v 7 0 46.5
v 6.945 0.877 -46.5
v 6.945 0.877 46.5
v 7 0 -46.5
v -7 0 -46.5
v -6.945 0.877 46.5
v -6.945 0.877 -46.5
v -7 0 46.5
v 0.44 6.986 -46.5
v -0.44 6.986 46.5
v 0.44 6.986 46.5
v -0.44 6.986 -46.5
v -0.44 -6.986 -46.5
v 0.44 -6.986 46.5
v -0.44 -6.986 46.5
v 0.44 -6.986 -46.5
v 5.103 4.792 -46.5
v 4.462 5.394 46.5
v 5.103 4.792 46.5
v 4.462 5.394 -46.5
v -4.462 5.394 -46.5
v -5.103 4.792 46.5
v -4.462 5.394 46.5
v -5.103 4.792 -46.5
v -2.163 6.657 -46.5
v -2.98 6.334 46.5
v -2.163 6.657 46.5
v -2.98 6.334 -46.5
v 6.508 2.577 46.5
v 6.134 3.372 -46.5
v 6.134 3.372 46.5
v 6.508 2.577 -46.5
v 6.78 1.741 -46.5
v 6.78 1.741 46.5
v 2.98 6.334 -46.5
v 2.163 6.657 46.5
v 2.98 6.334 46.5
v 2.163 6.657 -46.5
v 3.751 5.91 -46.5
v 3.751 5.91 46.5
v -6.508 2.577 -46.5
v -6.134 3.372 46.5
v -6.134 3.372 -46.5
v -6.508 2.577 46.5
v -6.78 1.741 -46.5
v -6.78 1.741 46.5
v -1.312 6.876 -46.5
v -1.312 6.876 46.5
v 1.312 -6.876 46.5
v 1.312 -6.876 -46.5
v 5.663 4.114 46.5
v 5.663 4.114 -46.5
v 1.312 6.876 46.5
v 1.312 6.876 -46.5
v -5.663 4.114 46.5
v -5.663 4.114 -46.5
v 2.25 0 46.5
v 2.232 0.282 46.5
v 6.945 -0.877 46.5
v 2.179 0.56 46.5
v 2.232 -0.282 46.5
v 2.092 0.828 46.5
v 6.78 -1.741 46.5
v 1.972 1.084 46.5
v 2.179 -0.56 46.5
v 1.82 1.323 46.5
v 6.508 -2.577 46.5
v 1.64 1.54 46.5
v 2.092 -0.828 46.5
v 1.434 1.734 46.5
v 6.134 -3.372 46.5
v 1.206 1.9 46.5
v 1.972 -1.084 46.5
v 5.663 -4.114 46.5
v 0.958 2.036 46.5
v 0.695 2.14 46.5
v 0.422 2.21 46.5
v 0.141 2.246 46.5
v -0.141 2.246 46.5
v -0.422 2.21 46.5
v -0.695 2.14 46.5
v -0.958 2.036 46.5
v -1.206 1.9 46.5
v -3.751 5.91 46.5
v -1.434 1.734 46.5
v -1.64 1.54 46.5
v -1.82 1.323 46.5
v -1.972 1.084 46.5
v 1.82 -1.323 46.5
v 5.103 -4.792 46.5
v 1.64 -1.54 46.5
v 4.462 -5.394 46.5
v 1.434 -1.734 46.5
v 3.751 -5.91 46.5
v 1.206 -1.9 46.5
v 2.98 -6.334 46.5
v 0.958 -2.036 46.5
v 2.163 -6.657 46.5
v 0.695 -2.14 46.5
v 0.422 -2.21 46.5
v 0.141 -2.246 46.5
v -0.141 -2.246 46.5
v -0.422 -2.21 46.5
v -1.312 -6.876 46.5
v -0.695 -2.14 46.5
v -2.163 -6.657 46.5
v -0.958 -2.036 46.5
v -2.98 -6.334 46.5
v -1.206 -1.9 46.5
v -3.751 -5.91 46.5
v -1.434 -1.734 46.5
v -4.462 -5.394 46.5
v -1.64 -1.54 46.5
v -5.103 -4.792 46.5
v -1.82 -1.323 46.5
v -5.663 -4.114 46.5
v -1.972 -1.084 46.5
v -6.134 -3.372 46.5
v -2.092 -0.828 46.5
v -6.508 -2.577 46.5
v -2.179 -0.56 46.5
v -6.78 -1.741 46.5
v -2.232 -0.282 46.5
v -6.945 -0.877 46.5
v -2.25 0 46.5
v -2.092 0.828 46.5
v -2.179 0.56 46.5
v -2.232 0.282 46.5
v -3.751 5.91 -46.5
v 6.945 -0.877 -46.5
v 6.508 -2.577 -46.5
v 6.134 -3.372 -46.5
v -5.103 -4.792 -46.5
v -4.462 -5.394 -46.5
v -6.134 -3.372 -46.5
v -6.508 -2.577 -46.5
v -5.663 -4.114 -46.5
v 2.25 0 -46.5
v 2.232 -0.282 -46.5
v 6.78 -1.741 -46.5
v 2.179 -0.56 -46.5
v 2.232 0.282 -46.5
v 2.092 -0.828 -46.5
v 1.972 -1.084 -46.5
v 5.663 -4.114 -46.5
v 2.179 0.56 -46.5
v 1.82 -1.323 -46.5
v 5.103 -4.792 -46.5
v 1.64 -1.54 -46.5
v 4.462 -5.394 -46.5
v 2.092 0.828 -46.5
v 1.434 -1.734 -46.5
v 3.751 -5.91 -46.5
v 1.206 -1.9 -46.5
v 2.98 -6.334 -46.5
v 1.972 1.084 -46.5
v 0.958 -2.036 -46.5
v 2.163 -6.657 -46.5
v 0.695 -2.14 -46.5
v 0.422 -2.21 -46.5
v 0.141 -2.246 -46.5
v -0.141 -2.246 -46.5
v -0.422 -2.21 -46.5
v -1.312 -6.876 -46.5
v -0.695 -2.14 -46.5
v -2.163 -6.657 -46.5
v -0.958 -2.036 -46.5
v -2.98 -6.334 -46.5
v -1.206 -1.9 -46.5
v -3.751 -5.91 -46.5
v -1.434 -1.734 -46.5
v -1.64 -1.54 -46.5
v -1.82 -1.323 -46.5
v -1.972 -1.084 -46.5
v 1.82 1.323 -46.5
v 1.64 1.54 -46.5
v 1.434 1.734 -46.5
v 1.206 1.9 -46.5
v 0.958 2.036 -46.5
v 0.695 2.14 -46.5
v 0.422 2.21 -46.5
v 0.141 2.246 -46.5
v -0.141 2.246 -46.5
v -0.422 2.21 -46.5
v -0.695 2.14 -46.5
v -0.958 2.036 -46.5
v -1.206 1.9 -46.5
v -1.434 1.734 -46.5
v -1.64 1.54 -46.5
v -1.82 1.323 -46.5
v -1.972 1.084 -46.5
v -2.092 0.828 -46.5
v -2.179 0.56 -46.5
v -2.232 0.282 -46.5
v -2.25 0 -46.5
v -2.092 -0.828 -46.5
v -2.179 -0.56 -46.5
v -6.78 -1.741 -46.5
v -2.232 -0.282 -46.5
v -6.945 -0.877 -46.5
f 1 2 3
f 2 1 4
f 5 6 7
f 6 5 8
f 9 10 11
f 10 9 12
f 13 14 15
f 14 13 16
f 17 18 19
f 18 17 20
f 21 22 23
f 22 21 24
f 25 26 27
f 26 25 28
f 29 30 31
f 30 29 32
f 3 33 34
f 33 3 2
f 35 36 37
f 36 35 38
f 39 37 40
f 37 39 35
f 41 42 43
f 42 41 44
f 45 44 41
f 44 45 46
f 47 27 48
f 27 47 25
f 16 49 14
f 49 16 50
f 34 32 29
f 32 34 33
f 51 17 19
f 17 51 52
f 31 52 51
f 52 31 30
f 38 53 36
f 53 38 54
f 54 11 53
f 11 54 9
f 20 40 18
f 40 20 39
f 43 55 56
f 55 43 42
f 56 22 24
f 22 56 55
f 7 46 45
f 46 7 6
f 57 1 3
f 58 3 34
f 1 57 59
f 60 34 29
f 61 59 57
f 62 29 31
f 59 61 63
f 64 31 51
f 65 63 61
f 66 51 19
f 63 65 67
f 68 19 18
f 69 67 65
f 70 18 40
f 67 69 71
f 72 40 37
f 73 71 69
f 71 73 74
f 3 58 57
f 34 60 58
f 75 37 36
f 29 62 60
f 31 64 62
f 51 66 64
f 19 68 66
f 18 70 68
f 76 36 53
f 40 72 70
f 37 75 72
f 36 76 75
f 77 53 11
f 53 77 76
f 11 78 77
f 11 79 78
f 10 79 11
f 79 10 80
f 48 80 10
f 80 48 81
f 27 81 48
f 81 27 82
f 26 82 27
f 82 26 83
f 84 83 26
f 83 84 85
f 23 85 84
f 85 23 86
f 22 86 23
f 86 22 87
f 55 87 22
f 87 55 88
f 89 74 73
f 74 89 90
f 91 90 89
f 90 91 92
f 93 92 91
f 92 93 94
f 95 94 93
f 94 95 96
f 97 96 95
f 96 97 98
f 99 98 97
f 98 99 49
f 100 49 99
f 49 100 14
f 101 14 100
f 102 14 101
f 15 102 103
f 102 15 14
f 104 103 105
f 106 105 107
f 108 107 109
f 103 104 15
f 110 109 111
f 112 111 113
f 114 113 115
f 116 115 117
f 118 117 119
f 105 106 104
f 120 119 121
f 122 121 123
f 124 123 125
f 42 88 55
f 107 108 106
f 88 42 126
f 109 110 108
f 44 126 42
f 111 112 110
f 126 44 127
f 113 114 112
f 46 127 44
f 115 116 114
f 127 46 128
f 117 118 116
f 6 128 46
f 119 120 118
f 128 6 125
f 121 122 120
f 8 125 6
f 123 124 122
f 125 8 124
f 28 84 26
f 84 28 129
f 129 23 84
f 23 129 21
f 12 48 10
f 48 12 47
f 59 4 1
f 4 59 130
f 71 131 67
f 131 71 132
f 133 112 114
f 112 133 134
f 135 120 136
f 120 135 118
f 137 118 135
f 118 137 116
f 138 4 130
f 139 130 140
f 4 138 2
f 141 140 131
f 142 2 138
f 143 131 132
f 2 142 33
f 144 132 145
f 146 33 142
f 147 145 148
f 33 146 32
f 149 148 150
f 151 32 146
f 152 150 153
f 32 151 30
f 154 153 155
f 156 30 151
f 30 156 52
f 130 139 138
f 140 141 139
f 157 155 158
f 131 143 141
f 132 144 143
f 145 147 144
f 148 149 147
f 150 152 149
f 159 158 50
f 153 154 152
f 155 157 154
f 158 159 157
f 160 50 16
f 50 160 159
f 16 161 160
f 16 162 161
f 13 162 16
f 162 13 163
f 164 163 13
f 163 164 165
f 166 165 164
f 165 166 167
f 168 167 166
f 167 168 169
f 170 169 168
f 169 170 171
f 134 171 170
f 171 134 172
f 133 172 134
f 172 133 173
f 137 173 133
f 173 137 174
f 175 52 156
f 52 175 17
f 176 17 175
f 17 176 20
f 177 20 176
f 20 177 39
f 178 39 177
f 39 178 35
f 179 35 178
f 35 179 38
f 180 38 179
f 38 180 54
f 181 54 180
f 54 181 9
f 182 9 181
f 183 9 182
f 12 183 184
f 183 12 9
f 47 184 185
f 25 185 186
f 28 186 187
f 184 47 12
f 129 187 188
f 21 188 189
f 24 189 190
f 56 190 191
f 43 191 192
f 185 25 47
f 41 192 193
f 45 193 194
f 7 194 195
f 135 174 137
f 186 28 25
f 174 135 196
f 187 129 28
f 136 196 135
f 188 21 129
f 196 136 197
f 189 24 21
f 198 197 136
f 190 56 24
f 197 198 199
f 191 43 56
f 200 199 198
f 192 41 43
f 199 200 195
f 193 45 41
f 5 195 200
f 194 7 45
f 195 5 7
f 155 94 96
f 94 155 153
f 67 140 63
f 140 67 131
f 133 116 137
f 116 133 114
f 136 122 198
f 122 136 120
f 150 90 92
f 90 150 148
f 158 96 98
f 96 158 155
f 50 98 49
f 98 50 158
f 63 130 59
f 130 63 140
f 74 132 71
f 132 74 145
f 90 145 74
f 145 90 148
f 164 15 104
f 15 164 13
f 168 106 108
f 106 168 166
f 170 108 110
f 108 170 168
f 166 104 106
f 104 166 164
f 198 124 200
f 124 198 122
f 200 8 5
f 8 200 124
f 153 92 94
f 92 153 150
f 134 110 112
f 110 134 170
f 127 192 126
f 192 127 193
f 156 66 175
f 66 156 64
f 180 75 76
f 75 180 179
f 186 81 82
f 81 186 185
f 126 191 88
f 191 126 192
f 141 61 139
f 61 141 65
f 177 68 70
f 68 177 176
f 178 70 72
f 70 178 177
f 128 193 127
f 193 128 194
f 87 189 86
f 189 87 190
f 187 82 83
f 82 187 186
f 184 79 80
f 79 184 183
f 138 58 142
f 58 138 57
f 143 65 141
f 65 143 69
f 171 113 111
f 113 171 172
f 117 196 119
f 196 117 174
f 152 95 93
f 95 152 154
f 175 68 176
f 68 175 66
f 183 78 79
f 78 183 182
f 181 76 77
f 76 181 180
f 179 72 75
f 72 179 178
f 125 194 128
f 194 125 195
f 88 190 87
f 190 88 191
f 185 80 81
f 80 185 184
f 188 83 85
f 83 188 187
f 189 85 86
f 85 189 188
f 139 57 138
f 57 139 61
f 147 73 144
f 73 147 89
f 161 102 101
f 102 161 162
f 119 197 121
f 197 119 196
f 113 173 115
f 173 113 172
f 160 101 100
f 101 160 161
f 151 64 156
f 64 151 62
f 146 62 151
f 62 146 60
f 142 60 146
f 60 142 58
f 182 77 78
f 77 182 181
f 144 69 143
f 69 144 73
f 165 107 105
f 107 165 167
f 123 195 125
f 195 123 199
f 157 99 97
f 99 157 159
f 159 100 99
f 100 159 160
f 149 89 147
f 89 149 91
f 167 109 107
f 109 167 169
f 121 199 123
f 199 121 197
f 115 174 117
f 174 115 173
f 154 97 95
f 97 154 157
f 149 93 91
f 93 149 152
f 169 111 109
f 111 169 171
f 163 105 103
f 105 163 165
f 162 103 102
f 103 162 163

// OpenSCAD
$fn = 50;


difference() {
	union() {
		translate(v = [0, 0, -46.5000000000]) {
			cylinder(h = 93, r = 7.0000000000);
		}
	}
	union() {
		translate(v = [0, 0, -100.0000000000]) {
			cylinder(h = 200, r = 2.2500000000);
		}
	}
}
